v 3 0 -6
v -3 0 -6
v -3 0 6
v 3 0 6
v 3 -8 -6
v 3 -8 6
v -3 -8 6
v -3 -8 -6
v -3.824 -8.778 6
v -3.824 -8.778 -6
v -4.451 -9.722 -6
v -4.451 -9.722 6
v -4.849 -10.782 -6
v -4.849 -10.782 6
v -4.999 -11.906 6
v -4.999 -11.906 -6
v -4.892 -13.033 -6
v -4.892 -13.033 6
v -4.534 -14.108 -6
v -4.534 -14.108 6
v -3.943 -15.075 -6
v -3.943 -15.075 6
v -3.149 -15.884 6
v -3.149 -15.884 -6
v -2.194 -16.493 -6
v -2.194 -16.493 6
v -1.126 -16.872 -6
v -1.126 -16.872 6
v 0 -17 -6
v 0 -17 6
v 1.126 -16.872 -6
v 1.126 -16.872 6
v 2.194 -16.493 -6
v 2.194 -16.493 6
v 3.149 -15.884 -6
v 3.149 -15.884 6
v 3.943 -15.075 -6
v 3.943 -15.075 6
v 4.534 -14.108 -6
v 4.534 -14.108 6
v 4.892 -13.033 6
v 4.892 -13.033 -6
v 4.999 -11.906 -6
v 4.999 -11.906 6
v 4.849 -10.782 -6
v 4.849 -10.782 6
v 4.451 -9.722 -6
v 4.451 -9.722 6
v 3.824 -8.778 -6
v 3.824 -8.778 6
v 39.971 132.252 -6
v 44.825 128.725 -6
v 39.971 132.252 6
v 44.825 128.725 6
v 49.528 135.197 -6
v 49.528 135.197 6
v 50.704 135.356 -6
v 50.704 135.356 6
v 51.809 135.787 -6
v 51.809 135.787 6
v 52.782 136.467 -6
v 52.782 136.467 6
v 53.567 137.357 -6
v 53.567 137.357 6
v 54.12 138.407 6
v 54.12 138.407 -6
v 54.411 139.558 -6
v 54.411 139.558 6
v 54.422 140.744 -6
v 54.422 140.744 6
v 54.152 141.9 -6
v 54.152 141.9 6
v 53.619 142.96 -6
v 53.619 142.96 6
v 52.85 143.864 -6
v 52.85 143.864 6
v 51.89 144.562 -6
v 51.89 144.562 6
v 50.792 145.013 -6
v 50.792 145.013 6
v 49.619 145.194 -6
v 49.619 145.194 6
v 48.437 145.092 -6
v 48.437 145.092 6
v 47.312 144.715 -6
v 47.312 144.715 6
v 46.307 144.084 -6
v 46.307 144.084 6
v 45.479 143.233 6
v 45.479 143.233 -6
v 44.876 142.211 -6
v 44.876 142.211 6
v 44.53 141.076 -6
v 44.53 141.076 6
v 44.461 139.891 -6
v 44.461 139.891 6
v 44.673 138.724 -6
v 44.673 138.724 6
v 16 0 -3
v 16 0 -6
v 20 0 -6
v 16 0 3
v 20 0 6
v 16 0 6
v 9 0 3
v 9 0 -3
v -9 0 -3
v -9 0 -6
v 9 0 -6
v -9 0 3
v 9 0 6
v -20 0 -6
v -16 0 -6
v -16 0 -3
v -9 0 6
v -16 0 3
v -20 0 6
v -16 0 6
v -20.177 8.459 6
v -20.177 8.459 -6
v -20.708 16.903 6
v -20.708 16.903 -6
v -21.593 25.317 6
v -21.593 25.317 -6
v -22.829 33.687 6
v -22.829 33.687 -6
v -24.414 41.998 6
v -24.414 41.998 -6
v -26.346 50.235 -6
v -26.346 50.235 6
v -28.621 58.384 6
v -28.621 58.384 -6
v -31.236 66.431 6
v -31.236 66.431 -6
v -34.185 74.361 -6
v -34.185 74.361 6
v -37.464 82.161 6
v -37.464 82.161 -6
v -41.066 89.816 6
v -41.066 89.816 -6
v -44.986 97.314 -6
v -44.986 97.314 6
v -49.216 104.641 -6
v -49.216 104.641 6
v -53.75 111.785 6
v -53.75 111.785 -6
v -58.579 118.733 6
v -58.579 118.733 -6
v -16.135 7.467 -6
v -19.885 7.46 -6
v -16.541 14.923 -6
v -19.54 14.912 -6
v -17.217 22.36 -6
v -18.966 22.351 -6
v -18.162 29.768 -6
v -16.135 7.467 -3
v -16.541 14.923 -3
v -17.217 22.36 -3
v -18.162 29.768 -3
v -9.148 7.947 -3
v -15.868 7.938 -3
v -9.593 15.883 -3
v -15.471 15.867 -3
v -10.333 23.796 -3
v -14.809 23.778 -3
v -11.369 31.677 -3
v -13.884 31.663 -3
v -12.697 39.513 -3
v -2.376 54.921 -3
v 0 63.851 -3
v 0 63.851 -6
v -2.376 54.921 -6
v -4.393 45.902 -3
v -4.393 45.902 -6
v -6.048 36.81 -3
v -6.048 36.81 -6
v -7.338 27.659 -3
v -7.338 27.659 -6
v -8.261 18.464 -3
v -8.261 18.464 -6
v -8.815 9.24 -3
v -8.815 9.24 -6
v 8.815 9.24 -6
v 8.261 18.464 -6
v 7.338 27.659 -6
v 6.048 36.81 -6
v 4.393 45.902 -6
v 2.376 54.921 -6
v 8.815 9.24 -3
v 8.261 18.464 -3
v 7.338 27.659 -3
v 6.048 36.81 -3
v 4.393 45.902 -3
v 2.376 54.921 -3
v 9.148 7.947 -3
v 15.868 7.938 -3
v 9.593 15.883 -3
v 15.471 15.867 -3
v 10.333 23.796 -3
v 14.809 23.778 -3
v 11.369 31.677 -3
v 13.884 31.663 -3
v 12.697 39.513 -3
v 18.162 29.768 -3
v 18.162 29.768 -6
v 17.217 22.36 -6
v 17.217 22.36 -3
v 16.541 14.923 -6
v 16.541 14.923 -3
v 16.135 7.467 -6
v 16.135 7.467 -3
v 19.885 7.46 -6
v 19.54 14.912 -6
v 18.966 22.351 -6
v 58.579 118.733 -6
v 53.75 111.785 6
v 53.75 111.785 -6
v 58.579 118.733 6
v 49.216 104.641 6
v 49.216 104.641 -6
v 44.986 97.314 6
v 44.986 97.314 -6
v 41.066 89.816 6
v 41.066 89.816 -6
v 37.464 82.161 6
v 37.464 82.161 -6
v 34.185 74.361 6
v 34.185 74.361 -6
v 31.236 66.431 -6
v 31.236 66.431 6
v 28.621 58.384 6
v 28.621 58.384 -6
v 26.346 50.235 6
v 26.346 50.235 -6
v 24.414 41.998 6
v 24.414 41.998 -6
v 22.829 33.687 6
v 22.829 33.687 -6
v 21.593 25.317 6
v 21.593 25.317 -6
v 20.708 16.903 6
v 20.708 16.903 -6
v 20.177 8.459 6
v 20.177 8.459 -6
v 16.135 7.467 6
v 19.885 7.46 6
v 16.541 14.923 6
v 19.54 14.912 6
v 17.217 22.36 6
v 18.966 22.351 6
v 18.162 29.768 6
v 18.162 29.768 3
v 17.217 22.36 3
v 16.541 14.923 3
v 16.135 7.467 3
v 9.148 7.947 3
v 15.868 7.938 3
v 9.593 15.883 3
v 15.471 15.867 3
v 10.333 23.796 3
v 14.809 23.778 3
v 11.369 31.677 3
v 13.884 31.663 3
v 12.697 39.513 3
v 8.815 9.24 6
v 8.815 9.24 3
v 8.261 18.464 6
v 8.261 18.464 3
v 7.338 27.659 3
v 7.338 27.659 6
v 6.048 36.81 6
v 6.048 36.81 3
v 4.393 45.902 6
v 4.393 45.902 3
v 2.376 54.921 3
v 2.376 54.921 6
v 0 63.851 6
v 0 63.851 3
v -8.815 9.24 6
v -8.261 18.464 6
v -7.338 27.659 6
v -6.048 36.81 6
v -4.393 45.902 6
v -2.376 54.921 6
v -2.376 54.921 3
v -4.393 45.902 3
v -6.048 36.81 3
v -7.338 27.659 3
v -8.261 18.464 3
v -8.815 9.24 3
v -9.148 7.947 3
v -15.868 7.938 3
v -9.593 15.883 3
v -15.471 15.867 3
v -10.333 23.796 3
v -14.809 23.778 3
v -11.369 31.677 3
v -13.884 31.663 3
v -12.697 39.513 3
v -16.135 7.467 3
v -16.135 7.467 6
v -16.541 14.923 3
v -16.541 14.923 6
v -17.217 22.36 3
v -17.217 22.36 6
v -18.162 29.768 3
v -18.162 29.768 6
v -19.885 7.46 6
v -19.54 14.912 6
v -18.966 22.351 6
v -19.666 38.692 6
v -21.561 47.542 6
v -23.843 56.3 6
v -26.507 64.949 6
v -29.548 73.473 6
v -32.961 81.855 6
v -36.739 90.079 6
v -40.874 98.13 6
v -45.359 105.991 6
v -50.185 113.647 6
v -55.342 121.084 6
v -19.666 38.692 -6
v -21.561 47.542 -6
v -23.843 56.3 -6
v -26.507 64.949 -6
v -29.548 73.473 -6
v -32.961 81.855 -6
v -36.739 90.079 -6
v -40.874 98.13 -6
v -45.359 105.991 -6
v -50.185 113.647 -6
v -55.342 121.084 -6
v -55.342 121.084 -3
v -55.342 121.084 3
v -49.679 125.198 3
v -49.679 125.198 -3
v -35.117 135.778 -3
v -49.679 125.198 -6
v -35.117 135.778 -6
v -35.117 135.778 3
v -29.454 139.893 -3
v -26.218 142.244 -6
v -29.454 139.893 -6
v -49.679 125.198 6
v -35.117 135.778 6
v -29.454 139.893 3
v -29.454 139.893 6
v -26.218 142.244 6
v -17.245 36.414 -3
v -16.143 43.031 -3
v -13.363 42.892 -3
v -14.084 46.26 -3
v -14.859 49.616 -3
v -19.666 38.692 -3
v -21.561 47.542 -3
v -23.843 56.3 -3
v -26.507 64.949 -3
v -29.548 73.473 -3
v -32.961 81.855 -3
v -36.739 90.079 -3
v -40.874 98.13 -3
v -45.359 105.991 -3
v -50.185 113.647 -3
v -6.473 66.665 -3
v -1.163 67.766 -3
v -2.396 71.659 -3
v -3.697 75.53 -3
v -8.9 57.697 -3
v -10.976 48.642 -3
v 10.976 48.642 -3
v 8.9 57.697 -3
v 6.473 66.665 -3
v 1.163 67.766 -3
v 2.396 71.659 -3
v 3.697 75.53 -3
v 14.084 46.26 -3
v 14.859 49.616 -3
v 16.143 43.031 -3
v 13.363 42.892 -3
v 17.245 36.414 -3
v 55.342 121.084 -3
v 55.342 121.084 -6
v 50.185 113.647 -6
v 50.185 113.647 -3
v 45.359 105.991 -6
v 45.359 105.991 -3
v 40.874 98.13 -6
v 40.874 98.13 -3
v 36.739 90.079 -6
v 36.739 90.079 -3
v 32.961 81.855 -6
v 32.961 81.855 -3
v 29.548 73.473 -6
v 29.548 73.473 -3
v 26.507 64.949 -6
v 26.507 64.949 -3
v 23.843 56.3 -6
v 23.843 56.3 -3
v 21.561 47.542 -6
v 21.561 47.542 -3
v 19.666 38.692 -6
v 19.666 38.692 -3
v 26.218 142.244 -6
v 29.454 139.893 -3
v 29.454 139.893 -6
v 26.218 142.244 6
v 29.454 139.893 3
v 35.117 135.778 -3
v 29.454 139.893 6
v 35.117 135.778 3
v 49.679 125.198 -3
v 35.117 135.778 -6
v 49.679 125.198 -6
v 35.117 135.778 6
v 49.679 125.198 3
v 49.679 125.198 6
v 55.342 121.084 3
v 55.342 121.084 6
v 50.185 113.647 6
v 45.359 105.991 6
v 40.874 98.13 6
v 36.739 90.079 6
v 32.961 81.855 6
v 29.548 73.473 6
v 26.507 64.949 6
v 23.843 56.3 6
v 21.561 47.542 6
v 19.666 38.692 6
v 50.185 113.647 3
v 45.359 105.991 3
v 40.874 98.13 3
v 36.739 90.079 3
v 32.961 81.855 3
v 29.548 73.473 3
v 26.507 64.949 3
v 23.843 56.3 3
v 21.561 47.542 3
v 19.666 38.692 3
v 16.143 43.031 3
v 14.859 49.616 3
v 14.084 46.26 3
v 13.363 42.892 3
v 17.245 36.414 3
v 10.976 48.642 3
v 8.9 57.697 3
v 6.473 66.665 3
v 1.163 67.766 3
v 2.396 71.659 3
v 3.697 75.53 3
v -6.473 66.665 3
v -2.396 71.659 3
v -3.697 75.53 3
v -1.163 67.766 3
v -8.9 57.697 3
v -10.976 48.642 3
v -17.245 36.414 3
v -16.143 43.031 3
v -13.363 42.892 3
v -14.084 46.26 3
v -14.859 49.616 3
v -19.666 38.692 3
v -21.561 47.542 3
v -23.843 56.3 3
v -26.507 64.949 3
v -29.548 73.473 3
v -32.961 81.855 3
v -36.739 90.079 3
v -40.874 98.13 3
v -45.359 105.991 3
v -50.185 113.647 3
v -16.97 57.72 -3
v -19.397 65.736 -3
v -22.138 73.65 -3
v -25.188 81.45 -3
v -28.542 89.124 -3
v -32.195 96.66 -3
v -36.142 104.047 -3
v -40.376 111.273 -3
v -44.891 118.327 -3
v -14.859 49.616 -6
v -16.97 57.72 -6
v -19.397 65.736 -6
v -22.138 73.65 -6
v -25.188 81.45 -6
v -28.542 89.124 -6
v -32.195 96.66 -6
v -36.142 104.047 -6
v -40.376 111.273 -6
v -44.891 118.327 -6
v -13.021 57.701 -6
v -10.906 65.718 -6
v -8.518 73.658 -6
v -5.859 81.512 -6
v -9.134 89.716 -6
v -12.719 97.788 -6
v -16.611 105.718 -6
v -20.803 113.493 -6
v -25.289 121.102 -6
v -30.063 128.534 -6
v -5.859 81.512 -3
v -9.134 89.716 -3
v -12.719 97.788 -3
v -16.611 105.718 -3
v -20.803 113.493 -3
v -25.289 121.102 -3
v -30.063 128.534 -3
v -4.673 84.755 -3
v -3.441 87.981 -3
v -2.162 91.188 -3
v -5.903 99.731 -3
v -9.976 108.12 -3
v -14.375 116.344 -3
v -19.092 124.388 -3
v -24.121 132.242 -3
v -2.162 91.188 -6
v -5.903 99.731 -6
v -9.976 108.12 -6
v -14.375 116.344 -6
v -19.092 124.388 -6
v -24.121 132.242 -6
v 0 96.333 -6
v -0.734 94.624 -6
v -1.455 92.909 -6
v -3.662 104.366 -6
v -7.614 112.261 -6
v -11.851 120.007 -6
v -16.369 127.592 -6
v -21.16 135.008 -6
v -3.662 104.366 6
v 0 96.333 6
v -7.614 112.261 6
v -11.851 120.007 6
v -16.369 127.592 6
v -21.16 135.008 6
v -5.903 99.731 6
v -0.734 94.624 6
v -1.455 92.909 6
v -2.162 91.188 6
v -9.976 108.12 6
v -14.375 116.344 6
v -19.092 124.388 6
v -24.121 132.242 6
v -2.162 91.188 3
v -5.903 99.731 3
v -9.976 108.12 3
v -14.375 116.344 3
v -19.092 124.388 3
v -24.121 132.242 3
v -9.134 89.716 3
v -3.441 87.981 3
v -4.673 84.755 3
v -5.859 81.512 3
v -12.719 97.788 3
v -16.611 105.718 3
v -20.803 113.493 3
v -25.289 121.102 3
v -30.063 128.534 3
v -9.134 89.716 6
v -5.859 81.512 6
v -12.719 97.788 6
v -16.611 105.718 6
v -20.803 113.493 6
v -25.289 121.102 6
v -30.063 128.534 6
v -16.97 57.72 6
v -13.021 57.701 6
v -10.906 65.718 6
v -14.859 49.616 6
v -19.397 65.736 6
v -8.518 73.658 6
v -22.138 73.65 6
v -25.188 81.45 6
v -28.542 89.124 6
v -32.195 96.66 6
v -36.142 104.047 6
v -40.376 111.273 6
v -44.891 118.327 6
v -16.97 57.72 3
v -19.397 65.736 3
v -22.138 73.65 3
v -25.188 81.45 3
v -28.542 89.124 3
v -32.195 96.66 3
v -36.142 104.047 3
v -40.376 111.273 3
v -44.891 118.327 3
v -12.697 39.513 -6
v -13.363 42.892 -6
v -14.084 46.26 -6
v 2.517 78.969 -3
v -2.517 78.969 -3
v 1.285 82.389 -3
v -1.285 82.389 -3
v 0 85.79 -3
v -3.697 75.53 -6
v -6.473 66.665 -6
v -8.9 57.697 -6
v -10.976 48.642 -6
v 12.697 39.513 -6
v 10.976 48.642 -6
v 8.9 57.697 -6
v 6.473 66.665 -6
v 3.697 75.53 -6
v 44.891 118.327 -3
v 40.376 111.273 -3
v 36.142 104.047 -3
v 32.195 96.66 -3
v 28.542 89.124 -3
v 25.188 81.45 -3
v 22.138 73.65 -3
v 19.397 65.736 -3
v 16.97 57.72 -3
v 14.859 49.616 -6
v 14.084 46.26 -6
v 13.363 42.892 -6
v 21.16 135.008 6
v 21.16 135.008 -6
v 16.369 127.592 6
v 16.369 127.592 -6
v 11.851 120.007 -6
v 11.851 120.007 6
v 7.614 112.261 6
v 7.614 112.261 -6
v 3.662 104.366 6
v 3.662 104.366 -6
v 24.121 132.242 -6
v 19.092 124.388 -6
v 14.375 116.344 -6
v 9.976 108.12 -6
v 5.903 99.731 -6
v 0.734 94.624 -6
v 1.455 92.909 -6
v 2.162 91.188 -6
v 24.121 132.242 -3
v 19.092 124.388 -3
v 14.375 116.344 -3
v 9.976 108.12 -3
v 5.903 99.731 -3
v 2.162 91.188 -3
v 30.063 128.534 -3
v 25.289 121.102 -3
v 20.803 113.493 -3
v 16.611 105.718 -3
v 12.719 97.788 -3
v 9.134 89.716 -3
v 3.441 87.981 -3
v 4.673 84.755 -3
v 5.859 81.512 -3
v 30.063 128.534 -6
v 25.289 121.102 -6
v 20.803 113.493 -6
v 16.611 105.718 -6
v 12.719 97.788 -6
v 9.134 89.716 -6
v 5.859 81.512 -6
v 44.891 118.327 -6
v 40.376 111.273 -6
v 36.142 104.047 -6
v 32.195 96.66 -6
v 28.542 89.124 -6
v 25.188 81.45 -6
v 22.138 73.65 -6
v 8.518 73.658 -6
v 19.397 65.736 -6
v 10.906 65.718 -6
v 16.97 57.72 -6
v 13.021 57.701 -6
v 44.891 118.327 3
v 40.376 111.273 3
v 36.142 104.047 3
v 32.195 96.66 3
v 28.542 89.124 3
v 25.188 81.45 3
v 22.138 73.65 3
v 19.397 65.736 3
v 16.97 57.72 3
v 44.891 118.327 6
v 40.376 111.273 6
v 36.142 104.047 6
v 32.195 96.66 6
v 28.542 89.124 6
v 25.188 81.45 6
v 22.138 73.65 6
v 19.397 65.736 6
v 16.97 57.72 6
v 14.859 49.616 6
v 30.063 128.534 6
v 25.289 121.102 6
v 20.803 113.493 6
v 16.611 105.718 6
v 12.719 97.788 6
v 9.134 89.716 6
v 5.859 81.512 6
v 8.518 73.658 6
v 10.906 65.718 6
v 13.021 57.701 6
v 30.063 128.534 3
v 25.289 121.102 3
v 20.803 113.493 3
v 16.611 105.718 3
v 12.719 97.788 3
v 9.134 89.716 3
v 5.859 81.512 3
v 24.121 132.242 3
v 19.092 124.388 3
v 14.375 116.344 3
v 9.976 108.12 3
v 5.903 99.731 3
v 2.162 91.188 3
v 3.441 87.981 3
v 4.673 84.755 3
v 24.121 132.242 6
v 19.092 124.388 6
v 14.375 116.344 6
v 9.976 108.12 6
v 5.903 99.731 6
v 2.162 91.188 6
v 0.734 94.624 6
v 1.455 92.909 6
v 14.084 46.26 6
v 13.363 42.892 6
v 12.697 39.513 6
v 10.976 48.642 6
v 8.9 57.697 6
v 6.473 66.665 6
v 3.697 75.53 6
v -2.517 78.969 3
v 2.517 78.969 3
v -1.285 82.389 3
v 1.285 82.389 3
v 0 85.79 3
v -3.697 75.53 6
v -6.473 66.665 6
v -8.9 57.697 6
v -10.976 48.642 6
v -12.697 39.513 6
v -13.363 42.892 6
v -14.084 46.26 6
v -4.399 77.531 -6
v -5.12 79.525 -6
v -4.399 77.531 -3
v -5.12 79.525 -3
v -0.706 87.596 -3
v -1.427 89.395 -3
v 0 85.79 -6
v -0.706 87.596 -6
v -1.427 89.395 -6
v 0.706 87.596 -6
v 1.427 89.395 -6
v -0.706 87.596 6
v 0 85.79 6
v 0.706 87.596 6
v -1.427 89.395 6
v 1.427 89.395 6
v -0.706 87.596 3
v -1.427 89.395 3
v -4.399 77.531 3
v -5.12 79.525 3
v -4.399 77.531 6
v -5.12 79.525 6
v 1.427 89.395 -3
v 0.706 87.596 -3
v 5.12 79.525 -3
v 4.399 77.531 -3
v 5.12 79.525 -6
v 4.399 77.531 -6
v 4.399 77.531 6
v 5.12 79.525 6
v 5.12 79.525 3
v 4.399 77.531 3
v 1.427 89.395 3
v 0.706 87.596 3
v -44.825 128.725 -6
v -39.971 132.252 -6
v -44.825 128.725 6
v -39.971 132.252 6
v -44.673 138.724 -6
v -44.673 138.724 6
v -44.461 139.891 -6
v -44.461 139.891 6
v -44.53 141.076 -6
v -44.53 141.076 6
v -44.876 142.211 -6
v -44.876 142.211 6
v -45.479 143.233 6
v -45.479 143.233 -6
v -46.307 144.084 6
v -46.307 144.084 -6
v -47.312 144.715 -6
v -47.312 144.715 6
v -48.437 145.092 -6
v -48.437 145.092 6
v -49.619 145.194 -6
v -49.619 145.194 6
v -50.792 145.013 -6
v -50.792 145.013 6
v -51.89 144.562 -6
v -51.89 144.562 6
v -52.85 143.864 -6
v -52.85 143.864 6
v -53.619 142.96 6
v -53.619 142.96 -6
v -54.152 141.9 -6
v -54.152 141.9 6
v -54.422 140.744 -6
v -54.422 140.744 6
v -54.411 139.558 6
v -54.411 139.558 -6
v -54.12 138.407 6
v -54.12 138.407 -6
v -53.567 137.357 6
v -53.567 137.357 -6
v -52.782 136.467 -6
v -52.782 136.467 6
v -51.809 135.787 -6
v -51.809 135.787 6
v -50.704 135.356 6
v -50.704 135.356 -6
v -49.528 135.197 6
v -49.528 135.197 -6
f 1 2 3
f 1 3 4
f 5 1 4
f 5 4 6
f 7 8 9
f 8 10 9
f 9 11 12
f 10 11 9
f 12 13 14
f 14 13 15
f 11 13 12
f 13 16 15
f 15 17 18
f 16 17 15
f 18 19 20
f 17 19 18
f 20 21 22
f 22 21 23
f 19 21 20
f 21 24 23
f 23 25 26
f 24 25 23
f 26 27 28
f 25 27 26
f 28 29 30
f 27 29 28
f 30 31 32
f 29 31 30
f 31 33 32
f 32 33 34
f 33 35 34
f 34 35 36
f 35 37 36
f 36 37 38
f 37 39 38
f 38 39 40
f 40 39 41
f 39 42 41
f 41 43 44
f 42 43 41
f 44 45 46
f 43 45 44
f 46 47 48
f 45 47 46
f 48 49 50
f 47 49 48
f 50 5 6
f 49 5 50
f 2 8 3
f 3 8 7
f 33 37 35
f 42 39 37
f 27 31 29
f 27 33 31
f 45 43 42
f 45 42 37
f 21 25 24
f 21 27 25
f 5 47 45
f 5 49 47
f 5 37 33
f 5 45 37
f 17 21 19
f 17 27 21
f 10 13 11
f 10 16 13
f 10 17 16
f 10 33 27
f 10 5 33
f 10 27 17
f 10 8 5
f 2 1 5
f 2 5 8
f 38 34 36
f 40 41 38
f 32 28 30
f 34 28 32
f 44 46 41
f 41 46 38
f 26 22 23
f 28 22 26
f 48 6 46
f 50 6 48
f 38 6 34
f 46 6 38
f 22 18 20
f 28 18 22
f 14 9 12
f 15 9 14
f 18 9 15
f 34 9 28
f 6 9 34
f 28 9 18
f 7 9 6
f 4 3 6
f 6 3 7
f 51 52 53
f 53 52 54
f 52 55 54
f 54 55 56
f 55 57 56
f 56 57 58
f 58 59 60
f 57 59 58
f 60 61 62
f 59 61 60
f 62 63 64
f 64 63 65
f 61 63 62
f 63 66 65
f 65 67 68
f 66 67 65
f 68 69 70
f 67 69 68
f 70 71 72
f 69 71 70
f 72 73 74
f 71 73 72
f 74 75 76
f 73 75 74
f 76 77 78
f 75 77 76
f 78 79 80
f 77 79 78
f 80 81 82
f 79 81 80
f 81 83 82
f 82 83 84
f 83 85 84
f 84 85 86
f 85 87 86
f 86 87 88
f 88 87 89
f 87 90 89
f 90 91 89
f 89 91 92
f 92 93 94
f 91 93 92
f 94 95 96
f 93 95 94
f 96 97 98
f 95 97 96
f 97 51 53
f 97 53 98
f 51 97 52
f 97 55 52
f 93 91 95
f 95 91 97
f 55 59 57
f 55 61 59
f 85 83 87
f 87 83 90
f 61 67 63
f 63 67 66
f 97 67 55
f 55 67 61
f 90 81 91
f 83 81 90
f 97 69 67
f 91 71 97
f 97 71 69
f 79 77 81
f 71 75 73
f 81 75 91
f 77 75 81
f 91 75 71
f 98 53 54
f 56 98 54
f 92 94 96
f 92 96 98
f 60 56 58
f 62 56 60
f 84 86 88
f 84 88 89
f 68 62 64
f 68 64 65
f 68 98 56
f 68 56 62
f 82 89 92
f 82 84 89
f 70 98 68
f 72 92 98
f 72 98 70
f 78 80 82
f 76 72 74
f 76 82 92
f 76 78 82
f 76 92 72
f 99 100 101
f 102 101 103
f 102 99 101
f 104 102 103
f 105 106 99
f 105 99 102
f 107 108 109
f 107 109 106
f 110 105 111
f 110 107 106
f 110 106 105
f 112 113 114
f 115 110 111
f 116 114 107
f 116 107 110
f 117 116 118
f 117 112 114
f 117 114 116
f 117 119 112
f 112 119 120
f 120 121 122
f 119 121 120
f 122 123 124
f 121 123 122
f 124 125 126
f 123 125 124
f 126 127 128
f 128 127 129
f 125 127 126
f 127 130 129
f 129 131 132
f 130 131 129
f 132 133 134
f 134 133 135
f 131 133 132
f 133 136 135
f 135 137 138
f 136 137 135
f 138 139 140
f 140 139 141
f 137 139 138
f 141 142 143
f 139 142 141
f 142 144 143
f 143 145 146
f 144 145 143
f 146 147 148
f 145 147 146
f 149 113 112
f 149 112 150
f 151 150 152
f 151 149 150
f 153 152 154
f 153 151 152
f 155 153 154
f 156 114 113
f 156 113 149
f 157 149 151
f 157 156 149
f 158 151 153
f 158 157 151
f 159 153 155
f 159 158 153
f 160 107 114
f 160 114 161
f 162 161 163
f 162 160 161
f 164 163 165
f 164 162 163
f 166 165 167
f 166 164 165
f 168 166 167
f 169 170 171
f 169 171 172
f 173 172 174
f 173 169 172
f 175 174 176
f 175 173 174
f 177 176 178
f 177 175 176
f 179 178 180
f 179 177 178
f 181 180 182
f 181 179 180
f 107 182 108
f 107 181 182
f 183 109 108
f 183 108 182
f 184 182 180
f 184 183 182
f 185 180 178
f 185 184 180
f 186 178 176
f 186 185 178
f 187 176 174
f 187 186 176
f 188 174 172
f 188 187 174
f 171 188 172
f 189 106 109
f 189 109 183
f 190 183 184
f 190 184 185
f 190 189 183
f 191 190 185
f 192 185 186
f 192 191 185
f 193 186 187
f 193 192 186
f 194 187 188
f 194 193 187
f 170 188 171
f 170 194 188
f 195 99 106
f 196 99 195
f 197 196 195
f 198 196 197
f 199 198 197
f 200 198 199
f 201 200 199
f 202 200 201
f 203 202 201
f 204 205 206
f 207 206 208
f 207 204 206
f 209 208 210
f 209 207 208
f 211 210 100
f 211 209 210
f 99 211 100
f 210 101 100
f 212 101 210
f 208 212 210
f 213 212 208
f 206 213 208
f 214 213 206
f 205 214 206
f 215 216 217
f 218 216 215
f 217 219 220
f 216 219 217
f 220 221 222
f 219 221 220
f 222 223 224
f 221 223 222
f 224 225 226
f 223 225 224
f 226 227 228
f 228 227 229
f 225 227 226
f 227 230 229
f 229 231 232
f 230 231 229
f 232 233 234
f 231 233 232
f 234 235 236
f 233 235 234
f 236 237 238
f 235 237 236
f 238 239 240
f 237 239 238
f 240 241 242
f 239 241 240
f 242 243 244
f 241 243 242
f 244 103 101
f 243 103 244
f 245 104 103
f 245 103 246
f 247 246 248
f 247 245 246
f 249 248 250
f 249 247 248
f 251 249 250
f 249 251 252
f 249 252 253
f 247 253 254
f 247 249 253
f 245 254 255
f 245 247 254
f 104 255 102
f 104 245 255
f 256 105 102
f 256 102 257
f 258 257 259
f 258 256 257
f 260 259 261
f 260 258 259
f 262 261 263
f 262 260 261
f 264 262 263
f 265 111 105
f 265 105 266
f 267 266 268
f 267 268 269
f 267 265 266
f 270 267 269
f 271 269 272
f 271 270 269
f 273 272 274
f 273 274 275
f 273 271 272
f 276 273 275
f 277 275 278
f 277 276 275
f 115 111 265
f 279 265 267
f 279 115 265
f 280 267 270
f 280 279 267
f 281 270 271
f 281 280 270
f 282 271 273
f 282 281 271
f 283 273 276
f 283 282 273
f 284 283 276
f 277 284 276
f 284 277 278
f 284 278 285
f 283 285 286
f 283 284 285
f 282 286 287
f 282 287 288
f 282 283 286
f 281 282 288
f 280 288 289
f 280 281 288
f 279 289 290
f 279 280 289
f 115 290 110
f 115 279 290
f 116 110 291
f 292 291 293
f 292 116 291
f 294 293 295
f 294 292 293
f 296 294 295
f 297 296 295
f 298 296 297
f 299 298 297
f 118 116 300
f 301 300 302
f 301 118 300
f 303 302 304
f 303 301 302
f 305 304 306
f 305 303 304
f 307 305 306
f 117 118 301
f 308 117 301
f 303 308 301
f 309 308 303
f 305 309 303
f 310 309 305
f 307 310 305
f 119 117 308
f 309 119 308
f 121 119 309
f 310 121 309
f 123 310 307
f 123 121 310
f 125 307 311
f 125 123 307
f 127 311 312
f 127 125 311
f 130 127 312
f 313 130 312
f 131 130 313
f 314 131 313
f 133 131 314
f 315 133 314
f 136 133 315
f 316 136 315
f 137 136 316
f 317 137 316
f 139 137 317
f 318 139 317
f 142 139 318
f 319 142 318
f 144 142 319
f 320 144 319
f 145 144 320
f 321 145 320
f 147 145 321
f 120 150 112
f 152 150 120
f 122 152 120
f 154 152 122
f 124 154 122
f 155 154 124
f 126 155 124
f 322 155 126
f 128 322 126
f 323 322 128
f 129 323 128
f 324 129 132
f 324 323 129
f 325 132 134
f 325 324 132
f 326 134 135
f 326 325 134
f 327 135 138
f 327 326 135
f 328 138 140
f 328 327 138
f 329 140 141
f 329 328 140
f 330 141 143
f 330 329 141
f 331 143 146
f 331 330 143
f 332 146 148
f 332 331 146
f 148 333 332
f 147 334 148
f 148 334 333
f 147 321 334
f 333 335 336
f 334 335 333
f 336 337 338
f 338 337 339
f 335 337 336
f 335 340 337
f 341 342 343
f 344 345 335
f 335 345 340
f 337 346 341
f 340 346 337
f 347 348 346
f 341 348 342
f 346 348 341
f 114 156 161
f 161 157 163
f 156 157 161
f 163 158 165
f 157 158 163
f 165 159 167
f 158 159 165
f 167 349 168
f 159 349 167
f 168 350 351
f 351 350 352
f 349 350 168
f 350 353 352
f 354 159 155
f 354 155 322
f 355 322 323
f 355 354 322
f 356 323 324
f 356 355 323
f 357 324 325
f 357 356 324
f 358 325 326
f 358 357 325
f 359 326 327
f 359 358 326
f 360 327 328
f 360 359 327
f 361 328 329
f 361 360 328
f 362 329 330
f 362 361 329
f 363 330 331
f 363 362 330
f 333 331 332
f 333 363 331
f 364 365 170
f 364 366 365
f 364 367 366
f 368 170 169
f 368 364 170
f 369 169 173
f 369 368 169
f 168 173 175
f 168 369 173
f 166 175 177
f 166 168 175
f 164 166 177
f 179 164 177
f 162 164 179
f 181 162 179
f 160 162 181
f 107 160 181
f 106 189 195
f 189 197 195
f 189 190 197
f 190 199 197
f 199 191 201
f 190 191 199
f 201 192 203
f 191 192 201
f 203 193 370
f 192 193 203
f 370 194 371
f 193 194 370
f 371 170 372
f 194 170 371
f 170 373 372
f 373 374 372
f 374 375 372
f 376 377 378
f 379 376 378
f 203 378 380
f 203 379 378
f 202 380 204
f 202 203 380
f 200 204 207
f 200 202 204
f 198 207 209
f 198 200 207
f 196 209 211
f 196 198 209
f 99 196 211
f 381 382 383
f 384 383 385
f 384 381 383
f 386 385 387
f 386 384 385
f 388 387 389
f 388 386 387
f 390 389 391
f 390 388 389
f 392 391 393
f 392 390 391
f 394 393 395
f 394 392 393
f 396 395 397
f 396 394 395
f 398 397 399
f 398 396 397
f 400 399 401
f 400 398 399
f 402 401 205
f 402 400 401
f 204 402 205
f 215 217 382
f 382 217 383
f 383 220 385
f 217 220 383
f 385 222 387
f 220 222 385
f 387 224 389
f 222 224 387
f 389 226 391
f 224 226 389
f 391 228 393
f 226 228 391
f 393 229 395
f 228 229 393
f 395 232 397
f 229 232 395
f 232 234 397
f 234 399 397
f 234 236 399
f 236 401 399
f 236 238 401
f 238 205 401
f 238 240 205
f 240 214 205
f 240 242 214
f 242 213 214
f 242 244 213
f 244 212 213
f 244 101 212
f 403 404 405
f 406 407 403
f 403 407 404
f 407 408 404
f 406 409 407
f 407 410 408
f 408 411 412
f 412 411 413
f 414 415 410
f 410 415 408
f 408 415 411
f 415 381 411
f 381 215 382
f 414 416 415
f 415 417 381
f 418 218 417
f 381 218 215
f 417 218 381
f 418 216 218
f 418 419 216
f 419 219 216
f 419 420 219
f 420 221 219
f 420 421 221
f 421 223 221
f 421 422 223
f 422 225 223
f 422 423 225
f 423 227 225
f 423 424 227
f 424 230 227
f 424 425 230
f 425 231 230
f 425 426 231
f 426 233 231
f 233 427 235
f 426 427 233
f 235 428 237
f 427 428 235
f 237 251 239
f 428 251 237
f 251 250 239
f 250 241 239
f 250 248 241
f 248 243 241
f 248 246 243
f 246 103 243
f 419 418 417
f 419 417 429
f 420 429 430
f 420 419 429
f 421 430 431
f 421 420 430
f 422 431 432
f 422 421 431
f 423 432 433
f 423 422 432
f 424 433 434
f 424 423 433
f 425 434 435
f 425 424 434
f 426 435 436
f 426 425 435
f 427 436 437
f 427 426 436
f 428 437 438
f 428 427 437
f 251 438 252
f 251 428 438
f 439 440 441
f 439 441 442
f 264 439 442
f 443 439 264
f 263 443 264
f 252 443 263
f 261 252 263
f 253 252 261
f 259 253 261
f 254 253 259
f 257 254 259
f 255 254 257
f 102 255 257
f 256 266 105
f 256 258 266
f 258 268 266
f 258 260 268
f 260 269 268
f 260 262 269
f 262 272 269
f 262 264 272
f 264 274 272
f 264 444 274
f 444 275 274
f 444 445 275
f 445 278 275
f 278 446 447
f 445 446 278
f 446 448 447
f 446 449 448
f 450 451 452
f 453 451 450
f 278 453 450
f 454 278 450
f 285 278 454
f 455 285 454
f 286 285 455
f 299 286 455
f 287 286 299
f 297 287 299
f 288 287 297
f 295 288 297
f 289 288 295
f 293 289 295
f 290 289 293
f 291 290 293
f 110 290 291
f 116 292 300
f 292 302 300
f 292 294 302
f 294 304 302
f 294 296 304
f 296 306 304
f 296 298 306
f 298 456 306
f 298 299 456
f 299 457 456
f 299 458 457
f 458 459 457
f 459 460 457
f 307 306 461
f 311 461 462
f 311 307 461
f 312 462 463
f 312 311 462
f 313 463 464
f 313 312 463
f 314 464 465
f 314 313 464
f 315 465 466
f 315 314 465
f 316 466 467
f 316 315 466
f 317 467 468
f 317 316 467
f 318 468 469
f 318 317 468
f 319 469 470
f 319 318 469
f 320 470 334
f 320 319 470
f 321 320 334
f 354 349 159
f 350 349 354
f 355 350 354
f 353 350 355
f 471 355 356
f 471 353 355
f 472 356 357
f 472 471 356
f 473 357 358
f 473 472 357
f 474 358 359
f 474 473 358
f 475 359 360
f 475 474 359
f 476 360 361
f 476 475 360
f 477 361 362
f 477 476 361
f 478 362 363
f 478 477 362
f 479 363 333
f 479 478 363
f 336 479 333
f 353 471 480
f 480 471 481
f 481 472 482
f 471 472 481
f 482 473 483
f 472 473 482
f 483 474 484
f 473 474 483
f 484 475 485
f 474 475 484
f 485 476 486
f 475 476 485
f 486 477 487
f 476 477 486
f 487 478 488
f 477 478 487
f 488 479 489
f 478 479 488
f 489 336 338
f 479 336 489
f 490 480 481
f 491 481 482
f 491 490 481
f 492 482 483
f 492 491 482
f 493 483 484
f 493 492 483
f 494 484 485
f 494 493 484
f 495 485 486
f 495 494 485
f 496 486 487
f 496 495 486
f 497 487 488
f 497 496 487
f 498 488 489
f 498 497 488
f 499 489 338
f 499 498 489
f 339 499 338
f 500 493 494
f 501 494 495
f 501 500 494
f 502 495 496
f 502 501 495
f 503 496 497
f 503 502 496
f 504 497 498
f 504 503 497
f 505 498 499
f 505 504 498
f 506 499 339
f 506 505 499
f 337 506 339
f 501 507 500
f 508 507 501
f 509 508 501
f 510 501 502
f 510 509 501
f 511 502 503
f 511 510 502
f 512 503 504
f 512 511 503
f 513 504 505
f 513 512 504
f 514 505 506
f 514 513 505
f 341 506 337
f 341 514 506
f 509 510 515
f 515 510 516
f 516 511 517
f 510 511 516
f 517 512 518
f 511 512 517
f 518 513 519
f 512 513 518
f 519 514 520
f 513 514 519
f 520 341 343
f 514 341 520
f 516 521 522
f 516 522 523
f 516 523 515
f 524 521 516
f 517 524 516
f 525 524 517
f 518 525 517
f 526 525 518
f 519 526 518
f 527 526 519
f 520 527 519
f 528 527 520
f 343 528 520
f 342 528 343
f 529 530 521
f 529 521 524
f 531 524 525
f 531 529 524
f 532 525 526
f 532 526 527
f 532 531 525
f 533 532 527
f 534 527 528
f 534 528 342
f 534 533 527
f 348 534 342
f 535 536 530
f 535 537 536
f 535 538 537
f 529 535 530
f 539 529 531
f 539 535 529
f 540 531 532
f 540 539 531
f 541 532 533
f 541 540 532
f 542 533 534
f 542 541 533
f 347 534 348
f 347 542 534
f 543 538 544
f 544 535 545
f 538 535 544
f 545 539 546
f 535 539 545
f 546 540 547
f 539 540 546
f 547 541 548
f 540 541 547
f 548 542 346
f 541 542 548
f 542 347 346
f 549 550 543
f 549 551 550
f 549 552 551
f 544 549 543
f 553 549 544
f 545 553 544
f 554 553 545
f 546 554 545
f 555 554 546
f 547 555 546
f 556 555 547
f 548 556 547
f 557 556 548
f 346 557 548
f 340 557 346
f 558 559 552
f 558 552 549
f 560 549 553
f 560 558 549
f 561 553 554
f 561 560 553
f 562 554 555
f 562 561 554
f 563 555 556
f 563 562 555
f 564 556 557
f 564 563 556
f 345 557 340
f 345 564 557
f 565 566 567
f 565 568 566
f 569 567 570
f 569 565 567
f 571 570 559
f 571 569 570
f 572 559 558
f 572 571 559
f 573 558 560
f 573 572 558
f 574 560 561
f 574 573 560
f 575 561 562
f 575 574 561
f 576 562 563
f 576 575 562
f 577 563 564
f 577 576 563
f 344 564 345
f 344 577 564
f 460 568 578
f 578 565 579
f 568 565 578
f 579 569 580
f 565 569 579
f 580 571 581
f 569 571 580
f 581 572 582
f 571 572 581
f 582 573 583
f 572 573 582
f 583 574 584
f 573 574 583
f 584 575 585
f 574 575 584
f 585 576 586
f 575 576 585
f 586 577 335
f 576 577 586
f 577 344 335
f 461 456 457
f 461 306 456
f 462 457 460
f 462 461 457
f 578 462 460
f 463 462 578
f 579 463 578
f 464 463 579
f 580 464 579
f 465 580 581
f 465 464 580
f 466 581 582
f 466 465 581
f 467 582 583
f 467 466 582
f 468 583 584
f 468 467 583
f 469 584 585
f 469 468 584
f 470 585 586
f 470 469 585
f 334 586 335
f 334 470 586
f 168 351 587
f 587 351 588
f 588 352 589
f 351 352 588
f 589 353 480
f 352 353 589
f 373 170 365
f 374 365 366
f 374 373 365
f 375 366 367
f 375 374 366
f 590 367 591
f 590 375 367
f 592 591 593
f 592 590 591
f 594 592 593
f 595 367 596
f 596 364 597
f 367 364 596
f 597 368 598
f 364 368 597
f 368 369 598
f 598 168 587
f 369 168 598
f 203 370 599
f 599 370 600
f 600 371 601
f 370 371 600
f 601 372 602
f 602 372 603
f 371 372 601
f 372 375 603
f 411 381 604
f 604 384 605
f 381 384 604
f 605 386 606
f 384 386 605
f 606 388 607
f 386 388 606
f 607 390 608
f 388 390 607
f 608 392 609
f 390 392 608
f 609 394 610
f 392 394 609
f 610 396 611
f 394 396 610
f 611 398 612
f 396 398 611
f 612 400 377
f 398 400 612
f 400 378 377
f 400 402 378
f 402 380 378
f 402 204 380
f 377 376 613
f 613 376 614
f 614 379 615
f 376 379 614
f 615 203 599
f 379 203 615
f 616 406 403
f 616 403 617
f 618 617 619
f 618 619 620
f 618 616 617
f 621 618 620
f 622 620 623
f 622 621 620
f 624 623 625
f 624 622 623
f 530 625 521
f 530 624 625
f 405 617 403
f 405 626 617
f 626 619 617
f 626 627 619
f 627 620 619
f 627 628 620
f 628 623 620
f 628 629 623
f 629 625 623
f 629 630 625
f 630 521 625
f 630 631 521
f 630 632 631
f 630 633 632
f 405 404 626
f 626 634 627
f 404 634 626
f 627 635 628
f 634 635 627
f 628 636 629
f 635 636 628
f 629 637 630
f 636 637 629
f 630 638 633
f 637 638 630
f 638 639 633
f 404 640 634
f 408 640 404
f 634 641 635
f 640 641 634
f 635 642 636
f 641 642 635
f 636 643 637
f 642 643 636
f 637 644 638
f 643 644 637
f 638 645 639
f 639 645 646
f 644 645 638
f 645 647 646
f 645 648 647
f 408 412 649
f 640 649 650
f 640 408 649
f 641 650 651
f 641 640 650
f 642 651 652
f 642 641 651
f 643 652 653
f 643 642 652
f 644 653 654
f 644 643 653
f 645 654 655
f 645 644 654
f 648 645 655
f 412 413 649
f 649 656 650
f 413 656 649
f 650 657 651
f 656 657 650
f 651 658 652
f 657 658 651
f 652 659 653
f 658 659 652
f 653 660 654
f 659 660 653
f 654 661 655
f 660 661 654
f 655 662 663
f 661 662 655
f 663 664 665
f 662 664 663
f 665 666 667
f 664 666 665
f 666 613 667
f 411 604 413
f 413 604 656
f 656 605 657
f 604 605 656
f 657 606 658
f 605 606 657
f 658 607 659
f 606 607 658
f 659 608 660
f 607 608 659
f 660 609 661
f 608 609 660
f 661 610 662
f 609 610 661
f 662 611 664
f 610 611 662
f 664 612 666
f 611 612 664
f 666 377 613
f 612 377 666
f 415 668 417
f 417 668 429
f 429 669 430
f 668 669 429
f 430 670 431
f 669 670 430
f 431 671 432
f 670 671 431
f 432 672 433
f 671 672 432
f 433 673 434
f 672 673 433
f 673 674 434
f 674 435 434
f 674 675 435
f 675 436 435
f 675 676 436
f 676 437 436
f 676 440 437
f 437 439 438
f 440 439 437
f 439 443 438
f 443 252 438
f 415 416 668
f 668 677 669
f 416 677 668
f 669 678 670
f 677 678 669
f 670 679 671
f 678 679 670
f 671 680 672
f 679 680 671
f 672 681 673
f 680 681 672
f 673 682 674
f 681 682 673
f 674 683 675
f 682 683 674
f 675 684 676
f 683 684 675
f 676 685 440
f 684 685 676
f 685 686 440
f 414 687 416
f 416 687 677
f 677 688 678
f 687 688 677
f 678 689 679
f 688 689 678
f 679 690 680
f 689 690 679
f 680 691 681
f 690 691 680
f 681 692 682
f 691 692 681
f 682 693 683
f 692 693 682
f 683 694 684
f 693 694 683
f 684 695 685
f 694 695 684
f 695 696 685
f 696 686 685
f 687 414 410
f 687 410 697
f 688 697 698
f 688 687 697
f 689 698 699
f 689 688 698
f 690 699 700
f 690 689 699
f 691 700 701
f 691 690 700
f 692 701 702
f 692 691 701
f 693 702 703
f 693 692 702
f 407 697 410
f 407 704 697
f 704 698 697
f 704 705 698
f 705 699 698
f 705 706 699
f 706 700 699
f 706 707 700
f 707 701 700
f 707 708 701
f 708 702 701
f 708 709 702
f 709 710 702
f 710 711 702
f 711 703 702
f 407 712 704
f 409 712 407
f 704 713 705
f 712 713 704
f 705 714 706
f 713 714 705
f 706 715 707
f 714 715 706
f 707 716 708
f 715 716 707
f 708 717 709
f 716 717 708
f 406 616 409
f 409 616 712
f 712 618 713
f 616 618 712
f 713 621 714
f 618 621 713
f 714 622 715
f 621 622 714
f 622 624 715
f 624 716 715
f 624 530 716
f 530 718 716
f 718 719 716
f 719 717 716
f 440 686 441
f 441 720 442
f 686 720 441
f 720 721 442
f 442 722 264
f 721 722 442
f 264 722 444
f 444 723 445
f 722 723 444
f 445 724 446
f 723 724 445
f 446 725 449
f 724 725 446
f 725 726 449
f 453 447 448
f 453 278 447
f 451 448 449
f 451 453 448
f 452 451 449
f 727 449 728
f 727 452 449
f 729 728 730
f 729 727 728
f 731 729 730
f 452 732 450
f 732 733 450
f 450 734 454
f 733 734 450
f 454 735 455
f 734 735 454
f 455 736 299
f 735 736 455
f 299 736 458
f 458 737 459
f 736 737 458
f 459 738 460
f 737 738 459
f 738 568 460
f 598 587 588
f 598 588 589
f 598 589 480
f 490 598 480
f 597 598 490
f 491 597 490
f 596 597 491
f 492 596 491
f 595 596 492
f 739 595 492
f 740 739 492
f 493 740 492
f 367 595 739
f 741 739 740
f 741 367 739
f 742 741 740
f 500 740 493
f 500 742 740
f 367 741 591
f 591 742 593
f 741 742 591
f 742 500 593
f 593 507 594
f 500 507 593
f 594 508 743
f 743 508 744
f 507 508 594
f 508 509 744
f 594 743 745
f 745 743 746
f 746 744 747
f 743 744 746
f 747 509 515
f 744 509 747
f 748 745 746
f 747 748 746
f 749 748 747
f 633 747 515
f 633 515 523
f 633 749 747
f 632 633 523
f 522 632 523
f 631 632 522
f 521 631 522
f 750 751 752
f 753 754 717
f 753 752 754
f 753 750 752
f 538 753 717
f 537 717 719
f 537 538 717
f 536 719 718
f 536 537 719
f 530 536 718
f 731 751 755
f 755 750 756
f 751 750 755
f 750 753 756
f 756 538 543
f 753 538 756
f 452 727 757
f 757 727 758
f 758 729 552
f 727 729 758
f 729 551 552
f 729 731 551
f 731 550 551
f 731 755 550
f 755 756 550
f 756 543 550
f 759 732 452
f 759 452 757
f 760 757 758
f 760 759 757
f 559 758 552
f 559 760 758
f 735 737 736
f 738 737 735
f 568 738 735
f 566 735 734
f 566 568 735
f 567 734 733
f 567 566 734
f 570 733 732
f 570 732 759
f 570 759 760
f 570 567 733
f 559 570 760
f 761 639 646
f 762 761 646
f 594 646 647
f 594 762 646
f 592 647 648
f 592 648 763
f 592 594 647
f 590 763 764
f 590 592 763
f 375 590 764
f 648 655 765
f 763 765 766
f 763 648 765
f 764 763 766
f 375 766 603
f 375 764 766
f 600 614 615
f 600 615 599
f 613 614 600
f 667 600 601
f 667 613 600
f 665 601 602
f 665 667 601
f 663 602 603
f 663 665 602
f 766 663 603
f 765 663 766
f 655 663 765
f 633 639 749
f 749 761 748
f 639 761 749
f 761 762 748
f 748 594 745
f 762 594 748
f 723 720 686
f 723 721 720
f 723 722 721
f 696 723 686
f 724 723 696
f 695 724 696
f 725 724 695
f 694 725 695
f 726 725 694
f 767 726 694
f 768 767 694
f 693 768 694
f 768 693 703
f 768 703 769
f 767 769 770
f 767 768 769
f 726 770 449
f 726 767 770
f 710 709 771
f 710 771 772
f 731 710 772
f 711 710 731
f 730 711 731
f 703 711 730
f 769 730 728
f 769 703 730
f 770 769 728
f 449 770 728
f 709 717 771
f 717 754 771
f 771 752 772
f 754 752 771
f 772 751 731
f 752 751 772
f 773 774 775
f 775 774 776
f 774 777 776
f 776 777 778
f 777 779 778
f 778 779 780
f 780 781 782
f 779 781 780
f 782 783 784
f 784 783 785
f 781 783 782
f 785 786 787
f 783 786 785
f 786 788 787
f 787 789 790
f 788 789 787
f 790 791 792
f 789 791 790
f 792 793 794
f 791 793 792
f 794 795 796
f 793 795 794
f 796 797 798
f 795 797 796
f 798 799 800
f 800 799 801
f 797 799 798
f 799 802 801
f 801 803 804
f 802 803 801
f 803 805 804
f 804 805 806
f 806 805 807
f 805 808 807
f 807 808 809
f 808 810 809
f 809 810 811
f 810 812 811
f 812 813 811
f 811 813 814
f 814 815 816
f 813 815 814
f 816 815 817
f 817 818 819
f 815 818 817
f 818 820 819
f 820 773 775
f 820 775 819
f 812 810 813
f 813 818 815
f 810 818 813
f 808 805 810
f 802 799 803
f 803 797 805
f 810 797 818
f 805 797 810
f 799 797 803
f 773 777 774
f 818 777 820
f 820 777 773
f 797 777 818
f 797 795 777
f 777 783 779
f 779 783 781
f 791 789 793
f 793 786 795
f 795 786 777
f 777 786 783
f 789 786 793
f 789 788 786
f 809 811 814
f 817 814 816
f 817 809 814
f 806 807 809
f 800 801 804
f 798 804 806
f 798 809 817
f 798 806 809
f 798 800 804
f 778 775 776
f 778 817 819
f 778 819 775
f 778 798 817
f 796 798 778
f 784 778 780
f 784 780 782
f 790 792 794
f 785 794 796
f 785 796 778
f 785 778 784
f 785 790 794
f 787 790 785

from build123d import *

# Parameters (mm, degrees)
SKETCH003_W  = 7
SKETCH003_H  = 3
SKETCH004_W  = 7
SKETCH004_H  = 3
SKETCH005_W  = 7
SKETCH005_H  = 3
SKETCH006_W  = 7
SKETCH006_H  = 3
PAD_DEPTH    = 6
PAD001_DEPTH = 6
PAD002_DEPTH = 6


with BuildPart() as main:
    # AdditivePipe: sweep along a path in Sketch
    with BuildLine(Plane.XY) as additivepipe_path:
        ThreePointArc((0, 0), (-10.865453, 68.601773), (-42.398227, 130.488326))
    # Sketch002 → AdditivePipe (sweep)
    with BuildSketch(Plane.XZ):
        Polygon((-20, 6), (-20, -6), (-16, -6), (-16, -3), (-9, -3), (-9, -6), (9, -6), (9, -3), (16, -3), (16, -6), (20, -6), (20, 6), (16, 6), (16, 3), (9, 3), (9, 6), (-9, 6), (-9, 3), (-16, 3), (-16, 6), align=None)
    sweep(path=additivepipe_path.line)

    # AdditivePipe001: sweep along a path in Sketch001
    with BuildLine(Plane.XY) as additivepipe001_path:
        ThreePointArc((42.398227, 130.488326), (10.865453, 68.601773), (0, 0))
    # Sketch002 → AdditivePipe001 (sweep)
    with BuildSketch(Plane.XZ):
        Polygon((-20, 6), (-20, -6), (-16, -6), (-16, -3), (-9, -3), (-9, -6), (9, -6), (9, -3), (16, -3), (16, -6), (20, -6), (20, 6), (16, 6), (16, 3), (9, 3), (9, 6), (-9, 6), (-9, 3), (-16, 3), (-16, 6), align=None)
    sweep(path=additivepipe001_path.line)

    # SubtractivePipe: sweep along a path in Sketch
    with BuildLine(Plane.XY) as subtractivepipe_path:
        ThreePointArc((0, 0), (-10.865453, 68.601773), (-42.398227, 130.488326))
    # Sketch003 → SubtractivePipe (sweep, cut)
    with BuildSketch(Plane.XZ):
        with Locations((-12.5, 4.5)):
            Rectangle(SKETCH003_W, SKETCH003_H)
    sweep(path=subtractivepipe_path.line, mode=Mode.SUBTRACT)

    # SubtractivePipe001: sweep along a path in Sketch001
    with BuildLine(Plane.XY) as subtractivepipe001_path:
        ThreePointArc((42.398227, 130.488326), (10.865453, 68.601773), (0, 0))
    # Sketch003 → SubtractivePipe001 (sweep, cut)
    with BuildSketch(Plane.XZ):
        with Locations((-12.5, 4.5)):
            Rectangle(SKETCH003_W, SKETCH003_H)
    sweep(path=subtractivepipe001_path.line, mode=Mode.SUBTRACT)

    # SubtractivePipe002: sweep along a path in Sketch
    with BuildLine(Plane.XY) as subtractivepipe002_path:
        ThreePointArc((0, 0), (-10.865453, 68.601773), (-42.398227, 130.488326))
    # Sketch004 → SubtractivePipe002 (sweep, cut)
    with BuildSketch(Plane.XZ):
        with Locations((12.5, 4.5)):
            Rectangle(SKETCH004_W, SKETCH004_H)
    sweep(path=subtractivepipe002_path.line, mode=Mode.SUBTRACT)

    # SubtractivePipe003: sweep along a path in Sketch001
    with BuildLine(Plane.XY) as subtractivepipe003_path:
        ThreePointArc((42.398227, 130.488326), (10.865453, 68.601773), (0, 0))
    # Sketch004 → SubtractivePipe003 (sweep, cut)
    with BuildSketch(Plane.XZ):
        with Locations((12.5, 4.5)):
            Rectangle(SKETCH004_W, SKETCH004_H)
    sweep(path=subtractivepipe003_path.line, mode=Mode.SUBTRACT)

    # SubtractivePipe004: sweep along a path in Sketch
    with BuildLine(Plane.XY) as subtractivepipe004_path:
        ThreePointArc((0, 0), (-10.865453, 68.601773), (-42.398227, 130.488326))
    # Sketch005 → SubtractivePipe004 (sweep, cut)
    with BuildSketch(Plane.XZ):
        with Locations((-12.5, -4.5)):
            Rectangle(SKETCH005_W, SKETCH005_H)
    sweep(path=subtractivepipe004_path.line, mode=Mode.SUBTRACT)

    # SubtractivePipe005: sweep along a path in Sketch001
    with BuildLine(Plane.XY) as subtractivepipe005_path:
        ThreePointArc((42.398227, 130.488326), (10.865453, 68.601773), (0, 0))
    # Sketch005 → SubtractivePipe005 (sweep, cut)
    with BuildSketch(Plane.XZ):
        with Locations((-12.5, -4.5)):
            Rectangle(SKETCH005_W, SKETCH005_H)
    sweep(path=subtractivepipe005_path.line, mode=Mode.SUBTRACT)

    # SubtractivePipe006: sweep along a path in Sketch
    with BuildLine(Plane.XY) as subtractivepipe006_path:
        ThreePointArc((0, 0), (-10.865453, 68.601773), (-42.398227, 130.488326))
    # Sketch006 → SubtractivePipe006 (sweep, cut)
    with BuildSketch(Plane.XZ):
        with Locations((12.5, -4.5)):
            Rectangle(SKETCH006_W, SKETCH006_H)
    sweep(path=subtractivepipe006_path.line, mode=Mode.SUBTRACT)

    # SubtractivePipe007: sweep along a path in Sketch001
    with BuildLine(Plane.XY) as subtractivepipe007_path:
        ThreePointArc((42.398227, 130.488326), (10.865453, 68.601773), (0, 0))
    # Sketch006 → SubtractivePipe007 (sweep, cut)
    with BuildSketch(Plane.XZ):
        with Locations((12.5, -4.5)):
            Rectangle(SKETCH006_W, SKETCH006_H)
    sweep(path=subtractivepipe007_path.line, mode=Mode.SUBTRACT)


with BuildPart() as male1:
    # Sketch010 → Pad (new body, symmetric)
    with BuildSketch(Plane.XY):
        with BuildLine():
            Line((-3, 0), (3, 0))
            Line((3, 0), (3, -8))
            ThreePointArc((-3, -8), (0, -17), (3, -8))
            Line((-3, 0), (-3, -8))
        make_face()
    extrude(amount=PAD_DEPTH, both=True)


with BuildPart() as male3:
    # Sketch011 → Pad001 (new body, symmetric)
    with BuildSketch(Plane.XY):
        with BuildLine():
            Line((39.971176, 132.251682), (44.825278, 128.72497))
            Line((44.825278, 128.72497), (49.52756, 135.197106))
            ThreePointArc((49.52756, 135.197106), (52.390577, 144.241615), (44.673458, 138.723818))
            Line((39.971176, 132.251682), (44.673458, 138.723818))
        make_face()
    extrude(amount=PAD001_DEPTH, both=True)


with BuildPart() as male2:
    # Sketch012 → Pad002 (new body, symmetric)
    with BuildSketch(Plane.XY):
        with BuildLine():
            Line((-44.825278, 128.72497), (-39.971176, 132.251682))
            Line((-39.971176, 132.251682), (-44.673458, 138.723818))
            ThreePointArc((-44.673458, 138.723818), (-52.390577, 144.241615), (-49.52756, 135.197106))
            Line((-44.825278, 128.72497), (-49.52756, 135.197106))
        make_face()
    extrude(amount=PAD002_DEPTH, both=True)


solid = Compound([main.part, male1.part, male3.part, male2.part])
